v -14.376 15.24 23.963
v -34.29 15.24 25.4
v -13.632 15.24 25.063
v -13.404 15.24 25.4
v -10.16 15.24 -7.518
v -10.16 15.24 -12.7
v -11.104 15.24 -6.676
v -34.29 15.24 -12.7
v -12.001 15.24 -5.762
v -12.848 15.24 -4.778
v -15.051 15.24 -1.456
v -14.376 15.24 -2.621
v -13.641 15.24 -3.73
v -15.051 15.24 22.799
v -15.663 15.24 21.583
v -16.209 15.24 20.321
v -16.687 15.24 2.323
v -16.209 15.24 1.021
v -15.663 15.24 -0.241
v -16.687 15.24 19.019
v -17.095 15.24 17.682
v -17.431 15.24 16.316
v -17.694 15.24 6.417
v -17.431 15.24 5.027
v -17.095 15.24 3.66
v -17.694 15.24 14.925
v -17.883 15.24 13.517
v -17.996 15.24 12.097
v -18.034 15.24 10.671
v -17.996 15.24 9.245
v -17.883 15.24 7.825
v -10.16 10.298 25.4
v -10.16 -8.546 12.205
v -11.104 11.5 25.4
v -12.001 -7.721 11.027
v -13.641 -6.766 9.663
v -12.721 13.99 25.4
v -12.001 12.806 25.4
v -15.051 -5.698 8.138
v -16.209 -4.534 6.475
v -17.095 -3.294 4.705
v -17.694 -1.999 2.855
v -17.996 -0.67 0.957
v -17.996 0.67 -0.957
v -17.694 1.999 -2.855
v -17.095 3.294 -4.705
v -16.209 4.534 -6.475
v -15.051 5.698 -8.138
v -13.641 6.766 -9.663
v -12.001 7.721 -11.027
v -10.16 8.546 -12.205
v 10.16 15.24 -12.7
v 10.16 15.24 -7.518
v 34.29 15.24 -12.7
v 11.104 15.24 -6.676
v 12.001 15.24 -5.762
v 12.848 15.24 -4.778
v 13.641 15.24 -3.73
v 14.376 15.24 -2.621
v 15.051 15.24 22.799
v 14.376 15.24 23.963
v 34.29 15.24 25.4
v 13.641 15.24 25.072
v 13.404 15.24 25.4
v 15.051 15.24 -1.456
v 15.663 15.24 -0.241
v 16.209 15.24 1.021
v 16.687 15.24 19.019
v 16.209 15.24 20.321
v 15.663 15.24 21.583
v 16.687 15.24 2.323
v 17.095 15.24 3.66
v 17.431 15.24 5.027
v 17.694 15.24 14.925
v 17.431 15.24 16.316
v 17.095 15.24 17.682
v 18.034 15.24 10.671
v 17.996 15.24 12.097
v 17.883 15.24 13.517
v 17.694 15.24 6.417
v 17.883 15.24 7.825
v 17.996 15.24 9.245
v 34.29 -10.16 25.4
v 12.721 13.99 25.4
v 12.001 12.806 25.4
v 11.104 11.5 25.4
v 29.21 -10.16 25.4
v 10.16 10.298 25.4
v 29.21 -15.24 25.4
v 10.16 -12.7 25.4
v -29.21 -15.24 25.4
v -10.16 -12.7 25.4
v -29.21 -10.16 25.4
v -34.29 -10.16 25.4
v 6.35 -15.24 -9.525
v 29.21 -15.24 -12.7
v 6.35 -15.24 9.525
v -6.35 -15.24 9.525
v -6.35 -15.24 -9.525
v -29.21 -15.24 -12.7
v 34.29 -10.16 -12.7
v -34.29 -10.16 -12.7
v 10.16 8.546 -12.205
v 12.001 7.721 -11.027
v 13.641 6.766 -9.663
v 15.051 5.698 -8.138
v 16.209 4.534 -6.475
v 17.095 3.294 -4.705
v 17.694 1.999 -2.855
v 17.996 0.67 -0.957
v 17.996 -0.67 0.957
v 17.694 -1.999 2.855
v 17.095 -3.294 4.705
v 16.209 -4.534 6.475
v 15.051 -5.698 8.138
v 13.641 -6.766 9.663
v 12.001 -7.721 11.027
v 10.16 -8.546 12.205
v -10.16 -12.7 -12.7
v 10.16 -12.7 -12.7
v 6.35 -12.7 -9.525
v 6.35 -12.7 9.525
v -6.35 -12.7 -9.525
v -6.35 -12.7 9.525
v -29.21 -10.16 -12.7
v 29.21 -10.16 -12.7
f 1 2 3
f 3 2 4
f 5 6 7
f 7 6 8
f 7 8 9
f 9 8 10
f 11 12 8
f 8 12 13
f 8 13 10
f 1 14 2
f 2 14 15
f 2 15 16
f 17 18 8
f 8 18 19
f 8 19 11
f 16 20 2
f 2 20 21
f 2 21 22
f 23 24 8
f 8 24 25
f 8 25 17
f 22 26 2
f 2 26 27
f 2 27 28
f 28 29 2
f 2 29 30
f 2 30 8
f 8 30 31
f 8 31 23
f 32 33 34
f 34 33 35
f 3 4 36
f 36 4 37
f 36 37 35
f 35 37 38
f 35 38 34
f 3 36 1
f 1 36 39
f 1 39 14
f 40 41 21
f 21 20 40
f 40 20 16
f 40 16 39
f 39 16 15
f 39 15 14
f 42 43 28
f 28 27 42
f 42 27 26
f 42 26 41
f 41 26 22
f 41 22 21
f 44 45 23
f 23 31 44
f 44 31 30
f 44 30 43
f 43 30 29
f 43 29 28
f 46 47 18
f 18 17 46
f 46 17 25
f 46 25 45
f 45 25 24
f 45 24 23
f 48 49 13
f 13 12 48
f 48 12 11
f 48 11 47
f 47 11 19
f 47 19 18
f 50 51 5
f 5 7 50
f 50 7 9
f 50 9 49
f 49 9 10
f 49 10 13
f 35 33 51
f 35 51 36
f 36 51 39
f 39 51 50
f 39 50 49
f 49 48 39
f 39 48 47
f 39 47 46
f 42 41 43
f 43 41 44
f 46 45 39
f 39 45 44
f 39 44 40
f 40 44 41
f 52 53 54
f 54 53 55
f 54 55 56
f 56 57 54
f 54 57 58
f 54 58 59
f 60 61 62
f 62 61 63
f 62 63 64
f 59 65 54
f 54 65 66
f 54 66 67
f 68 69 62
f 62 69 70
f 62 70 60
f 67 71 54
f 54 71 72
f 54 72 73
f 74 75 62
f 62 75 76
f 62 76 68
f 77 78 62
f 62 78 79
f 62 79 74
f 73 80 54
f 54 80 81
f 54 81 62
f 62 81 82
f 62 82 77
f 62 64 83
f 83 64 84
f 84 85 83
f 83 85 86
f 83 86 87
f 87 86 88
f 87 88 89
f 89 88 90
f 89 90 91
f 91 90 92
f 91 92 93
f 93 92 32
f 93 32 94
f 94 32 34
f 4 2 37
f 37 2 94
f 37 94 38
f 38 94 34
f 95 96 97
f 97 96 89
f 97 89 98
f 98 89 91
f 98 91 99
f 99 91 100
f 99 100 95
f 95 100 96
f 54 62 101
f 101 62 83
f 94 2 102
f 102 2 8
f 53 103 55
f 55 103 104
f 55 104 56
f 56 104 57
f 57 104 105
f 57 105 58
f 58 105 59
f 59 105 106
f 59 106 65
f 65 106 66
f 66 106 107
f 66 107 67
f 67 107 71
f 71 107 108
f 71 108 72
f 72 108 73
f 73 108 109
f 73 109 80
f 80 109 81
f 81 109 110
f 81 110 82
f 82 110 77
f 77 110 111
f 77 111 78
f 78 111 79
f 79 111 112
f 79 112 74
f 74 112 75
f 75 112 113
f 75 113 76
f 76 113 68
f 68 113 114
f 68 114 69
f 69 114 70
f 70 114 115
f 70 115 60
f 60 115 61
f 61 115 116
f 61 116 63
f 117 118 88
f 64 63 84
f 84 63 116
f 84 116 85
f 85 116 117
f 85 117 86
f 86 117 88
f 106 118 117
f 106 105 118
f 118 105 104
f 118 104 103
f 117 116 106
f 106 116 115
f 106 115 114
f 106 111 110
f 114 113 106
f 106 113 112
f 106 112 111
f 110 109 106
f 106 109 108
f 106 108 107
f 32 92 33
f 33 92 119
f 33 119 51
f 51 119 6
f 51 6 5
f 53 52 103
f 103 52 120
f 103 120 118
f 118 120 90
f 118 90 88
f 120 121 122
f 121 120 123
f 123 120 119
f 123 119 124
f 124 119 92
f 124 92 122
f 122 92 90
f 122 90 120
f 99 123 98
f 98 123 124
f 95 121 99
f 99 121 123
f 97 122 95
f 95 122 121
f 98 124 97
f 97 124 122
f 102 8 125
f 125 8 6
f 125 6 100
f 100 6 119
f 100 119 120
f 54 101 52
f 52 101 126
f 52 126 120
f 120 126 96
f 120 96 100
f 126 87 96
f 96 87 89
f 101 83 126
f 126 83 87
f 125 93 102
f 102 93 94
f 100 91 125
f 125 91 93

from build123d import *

# Parameters (mm, degrees)
SKETCH1_W               = 50.8
SKETCH1_H               = 30.48
BOSS_EXTRUDE1_DEPTH     = 34.29
SKETCH2_R               = 18.034
CUT_EXTRUDE1_DEPTH      = 46.312489448
SKETCH3_W               = 20.32
SKETCH3_H               = 27.94
CUT_EXTRUDE2_DEPTH      = 64.156169137
SKETCH4_W               = 12.7
SKETCH4_H               = 19.05
CUT_EXTRUDE3_DEPTH      = 46.312489448
SKETCH7_W               = 68.58
SKETCH7_H               = 12.7
CUT_EXTRUDE5_DEPTH      = 53.440389968
CUT_EXTRUDE6_DEPTH      = 46.312489448
CUT_EXTRUDE6_DEPTH_BACK = 46.312489448
SKETCH9_W               = 5.08
SKETCH9_H               = 5.08


with BuildPart() as part:
    # Sketch1 → Boss-Extrude1 (new, symmetric)
    with BuildSketch(Plane(origin=(0, 0, 0), x_dir=(0, 0, -1), z_dir=(1, 0, 0))):
        Rectangle(SKETCH1_W, SKETCH1_H)
    extrude(amount=BOSS_EXTRUDE1_DEPTH, both=True)

    # Sketch2 → Cut-Extrude1 (cut, through all)
    with BuildSketch(Plane(origin=(0, 0, 0), x_dir=(1, 0, 0), z_dir=(0, 0.819152044288991, 0.5735764363510473))):
        Circle(SKETCH2_R)
    extrude(amount=CUT_EXTRUDE1_DEPTH, mode=Mode.SUBTRACT)

    # Sketch3 → Cut-Extrude2 (cut, through all)
    with BuildSketch(Plane.XY.offset(25.4)):
        with Locations((0, 1.27)):
            Rectangle(SKETCH3_W, SKETCH3_H)
    extrude(amount=-CUT_EXTRUDE2_DEPTH, mode=Mode.SUBTRACT)

    # Sketch4 → Cut-Extrude3 (cut, through all)
    with BuildSketch(Plane(origin=(0, 0, 0), x_dir=(1, 0, 0), z_dir=(0, 1, 0))):
        Rectangle(SKETCH4_W, SKETCH4_H)
    extrude(amount=-CUT_EXTRUDE3_DEPTH, mode=Mode.SUBTRACT)

    # Sketch7 → Cut-Extrude5 (cut, through all)
    with BuildSketch(Plane(origin=(0, 15.24, 0), x_dir=(1, 0, 0), z_dir=(0, 1, 0))):
        with Locations((0, 19.05)):
            Rectangle(SKETCH7_W, SKETCH7_H)
    extrude(amount=-CUT_EXTRUDE5_DEPTH, mode=Mode.SUBTRACT)

    # Sketch9 → Cut-Extrude6 (cut, two sides: drawn at the far end of the back side and taken through both)
    with BuildSketch(Plane.XY.offset(-CUT_EXTRUDE6_DEPTH_BACK)):
        with Locations((-31.75, -12.7)):
            Rectangle(SKETCH9_W, SKETCH9_H)
        with Locations((31.75, -12.7)):
            Rectangle(SKETCH9_W, SKETCH9_H)
    extrude(amount=CUT_EXTRUDE6_DEPTH + CUT_EXTRUDE6_DEPTH_BACK, mode=Mode.SUBTRACT)


solid = part.part
